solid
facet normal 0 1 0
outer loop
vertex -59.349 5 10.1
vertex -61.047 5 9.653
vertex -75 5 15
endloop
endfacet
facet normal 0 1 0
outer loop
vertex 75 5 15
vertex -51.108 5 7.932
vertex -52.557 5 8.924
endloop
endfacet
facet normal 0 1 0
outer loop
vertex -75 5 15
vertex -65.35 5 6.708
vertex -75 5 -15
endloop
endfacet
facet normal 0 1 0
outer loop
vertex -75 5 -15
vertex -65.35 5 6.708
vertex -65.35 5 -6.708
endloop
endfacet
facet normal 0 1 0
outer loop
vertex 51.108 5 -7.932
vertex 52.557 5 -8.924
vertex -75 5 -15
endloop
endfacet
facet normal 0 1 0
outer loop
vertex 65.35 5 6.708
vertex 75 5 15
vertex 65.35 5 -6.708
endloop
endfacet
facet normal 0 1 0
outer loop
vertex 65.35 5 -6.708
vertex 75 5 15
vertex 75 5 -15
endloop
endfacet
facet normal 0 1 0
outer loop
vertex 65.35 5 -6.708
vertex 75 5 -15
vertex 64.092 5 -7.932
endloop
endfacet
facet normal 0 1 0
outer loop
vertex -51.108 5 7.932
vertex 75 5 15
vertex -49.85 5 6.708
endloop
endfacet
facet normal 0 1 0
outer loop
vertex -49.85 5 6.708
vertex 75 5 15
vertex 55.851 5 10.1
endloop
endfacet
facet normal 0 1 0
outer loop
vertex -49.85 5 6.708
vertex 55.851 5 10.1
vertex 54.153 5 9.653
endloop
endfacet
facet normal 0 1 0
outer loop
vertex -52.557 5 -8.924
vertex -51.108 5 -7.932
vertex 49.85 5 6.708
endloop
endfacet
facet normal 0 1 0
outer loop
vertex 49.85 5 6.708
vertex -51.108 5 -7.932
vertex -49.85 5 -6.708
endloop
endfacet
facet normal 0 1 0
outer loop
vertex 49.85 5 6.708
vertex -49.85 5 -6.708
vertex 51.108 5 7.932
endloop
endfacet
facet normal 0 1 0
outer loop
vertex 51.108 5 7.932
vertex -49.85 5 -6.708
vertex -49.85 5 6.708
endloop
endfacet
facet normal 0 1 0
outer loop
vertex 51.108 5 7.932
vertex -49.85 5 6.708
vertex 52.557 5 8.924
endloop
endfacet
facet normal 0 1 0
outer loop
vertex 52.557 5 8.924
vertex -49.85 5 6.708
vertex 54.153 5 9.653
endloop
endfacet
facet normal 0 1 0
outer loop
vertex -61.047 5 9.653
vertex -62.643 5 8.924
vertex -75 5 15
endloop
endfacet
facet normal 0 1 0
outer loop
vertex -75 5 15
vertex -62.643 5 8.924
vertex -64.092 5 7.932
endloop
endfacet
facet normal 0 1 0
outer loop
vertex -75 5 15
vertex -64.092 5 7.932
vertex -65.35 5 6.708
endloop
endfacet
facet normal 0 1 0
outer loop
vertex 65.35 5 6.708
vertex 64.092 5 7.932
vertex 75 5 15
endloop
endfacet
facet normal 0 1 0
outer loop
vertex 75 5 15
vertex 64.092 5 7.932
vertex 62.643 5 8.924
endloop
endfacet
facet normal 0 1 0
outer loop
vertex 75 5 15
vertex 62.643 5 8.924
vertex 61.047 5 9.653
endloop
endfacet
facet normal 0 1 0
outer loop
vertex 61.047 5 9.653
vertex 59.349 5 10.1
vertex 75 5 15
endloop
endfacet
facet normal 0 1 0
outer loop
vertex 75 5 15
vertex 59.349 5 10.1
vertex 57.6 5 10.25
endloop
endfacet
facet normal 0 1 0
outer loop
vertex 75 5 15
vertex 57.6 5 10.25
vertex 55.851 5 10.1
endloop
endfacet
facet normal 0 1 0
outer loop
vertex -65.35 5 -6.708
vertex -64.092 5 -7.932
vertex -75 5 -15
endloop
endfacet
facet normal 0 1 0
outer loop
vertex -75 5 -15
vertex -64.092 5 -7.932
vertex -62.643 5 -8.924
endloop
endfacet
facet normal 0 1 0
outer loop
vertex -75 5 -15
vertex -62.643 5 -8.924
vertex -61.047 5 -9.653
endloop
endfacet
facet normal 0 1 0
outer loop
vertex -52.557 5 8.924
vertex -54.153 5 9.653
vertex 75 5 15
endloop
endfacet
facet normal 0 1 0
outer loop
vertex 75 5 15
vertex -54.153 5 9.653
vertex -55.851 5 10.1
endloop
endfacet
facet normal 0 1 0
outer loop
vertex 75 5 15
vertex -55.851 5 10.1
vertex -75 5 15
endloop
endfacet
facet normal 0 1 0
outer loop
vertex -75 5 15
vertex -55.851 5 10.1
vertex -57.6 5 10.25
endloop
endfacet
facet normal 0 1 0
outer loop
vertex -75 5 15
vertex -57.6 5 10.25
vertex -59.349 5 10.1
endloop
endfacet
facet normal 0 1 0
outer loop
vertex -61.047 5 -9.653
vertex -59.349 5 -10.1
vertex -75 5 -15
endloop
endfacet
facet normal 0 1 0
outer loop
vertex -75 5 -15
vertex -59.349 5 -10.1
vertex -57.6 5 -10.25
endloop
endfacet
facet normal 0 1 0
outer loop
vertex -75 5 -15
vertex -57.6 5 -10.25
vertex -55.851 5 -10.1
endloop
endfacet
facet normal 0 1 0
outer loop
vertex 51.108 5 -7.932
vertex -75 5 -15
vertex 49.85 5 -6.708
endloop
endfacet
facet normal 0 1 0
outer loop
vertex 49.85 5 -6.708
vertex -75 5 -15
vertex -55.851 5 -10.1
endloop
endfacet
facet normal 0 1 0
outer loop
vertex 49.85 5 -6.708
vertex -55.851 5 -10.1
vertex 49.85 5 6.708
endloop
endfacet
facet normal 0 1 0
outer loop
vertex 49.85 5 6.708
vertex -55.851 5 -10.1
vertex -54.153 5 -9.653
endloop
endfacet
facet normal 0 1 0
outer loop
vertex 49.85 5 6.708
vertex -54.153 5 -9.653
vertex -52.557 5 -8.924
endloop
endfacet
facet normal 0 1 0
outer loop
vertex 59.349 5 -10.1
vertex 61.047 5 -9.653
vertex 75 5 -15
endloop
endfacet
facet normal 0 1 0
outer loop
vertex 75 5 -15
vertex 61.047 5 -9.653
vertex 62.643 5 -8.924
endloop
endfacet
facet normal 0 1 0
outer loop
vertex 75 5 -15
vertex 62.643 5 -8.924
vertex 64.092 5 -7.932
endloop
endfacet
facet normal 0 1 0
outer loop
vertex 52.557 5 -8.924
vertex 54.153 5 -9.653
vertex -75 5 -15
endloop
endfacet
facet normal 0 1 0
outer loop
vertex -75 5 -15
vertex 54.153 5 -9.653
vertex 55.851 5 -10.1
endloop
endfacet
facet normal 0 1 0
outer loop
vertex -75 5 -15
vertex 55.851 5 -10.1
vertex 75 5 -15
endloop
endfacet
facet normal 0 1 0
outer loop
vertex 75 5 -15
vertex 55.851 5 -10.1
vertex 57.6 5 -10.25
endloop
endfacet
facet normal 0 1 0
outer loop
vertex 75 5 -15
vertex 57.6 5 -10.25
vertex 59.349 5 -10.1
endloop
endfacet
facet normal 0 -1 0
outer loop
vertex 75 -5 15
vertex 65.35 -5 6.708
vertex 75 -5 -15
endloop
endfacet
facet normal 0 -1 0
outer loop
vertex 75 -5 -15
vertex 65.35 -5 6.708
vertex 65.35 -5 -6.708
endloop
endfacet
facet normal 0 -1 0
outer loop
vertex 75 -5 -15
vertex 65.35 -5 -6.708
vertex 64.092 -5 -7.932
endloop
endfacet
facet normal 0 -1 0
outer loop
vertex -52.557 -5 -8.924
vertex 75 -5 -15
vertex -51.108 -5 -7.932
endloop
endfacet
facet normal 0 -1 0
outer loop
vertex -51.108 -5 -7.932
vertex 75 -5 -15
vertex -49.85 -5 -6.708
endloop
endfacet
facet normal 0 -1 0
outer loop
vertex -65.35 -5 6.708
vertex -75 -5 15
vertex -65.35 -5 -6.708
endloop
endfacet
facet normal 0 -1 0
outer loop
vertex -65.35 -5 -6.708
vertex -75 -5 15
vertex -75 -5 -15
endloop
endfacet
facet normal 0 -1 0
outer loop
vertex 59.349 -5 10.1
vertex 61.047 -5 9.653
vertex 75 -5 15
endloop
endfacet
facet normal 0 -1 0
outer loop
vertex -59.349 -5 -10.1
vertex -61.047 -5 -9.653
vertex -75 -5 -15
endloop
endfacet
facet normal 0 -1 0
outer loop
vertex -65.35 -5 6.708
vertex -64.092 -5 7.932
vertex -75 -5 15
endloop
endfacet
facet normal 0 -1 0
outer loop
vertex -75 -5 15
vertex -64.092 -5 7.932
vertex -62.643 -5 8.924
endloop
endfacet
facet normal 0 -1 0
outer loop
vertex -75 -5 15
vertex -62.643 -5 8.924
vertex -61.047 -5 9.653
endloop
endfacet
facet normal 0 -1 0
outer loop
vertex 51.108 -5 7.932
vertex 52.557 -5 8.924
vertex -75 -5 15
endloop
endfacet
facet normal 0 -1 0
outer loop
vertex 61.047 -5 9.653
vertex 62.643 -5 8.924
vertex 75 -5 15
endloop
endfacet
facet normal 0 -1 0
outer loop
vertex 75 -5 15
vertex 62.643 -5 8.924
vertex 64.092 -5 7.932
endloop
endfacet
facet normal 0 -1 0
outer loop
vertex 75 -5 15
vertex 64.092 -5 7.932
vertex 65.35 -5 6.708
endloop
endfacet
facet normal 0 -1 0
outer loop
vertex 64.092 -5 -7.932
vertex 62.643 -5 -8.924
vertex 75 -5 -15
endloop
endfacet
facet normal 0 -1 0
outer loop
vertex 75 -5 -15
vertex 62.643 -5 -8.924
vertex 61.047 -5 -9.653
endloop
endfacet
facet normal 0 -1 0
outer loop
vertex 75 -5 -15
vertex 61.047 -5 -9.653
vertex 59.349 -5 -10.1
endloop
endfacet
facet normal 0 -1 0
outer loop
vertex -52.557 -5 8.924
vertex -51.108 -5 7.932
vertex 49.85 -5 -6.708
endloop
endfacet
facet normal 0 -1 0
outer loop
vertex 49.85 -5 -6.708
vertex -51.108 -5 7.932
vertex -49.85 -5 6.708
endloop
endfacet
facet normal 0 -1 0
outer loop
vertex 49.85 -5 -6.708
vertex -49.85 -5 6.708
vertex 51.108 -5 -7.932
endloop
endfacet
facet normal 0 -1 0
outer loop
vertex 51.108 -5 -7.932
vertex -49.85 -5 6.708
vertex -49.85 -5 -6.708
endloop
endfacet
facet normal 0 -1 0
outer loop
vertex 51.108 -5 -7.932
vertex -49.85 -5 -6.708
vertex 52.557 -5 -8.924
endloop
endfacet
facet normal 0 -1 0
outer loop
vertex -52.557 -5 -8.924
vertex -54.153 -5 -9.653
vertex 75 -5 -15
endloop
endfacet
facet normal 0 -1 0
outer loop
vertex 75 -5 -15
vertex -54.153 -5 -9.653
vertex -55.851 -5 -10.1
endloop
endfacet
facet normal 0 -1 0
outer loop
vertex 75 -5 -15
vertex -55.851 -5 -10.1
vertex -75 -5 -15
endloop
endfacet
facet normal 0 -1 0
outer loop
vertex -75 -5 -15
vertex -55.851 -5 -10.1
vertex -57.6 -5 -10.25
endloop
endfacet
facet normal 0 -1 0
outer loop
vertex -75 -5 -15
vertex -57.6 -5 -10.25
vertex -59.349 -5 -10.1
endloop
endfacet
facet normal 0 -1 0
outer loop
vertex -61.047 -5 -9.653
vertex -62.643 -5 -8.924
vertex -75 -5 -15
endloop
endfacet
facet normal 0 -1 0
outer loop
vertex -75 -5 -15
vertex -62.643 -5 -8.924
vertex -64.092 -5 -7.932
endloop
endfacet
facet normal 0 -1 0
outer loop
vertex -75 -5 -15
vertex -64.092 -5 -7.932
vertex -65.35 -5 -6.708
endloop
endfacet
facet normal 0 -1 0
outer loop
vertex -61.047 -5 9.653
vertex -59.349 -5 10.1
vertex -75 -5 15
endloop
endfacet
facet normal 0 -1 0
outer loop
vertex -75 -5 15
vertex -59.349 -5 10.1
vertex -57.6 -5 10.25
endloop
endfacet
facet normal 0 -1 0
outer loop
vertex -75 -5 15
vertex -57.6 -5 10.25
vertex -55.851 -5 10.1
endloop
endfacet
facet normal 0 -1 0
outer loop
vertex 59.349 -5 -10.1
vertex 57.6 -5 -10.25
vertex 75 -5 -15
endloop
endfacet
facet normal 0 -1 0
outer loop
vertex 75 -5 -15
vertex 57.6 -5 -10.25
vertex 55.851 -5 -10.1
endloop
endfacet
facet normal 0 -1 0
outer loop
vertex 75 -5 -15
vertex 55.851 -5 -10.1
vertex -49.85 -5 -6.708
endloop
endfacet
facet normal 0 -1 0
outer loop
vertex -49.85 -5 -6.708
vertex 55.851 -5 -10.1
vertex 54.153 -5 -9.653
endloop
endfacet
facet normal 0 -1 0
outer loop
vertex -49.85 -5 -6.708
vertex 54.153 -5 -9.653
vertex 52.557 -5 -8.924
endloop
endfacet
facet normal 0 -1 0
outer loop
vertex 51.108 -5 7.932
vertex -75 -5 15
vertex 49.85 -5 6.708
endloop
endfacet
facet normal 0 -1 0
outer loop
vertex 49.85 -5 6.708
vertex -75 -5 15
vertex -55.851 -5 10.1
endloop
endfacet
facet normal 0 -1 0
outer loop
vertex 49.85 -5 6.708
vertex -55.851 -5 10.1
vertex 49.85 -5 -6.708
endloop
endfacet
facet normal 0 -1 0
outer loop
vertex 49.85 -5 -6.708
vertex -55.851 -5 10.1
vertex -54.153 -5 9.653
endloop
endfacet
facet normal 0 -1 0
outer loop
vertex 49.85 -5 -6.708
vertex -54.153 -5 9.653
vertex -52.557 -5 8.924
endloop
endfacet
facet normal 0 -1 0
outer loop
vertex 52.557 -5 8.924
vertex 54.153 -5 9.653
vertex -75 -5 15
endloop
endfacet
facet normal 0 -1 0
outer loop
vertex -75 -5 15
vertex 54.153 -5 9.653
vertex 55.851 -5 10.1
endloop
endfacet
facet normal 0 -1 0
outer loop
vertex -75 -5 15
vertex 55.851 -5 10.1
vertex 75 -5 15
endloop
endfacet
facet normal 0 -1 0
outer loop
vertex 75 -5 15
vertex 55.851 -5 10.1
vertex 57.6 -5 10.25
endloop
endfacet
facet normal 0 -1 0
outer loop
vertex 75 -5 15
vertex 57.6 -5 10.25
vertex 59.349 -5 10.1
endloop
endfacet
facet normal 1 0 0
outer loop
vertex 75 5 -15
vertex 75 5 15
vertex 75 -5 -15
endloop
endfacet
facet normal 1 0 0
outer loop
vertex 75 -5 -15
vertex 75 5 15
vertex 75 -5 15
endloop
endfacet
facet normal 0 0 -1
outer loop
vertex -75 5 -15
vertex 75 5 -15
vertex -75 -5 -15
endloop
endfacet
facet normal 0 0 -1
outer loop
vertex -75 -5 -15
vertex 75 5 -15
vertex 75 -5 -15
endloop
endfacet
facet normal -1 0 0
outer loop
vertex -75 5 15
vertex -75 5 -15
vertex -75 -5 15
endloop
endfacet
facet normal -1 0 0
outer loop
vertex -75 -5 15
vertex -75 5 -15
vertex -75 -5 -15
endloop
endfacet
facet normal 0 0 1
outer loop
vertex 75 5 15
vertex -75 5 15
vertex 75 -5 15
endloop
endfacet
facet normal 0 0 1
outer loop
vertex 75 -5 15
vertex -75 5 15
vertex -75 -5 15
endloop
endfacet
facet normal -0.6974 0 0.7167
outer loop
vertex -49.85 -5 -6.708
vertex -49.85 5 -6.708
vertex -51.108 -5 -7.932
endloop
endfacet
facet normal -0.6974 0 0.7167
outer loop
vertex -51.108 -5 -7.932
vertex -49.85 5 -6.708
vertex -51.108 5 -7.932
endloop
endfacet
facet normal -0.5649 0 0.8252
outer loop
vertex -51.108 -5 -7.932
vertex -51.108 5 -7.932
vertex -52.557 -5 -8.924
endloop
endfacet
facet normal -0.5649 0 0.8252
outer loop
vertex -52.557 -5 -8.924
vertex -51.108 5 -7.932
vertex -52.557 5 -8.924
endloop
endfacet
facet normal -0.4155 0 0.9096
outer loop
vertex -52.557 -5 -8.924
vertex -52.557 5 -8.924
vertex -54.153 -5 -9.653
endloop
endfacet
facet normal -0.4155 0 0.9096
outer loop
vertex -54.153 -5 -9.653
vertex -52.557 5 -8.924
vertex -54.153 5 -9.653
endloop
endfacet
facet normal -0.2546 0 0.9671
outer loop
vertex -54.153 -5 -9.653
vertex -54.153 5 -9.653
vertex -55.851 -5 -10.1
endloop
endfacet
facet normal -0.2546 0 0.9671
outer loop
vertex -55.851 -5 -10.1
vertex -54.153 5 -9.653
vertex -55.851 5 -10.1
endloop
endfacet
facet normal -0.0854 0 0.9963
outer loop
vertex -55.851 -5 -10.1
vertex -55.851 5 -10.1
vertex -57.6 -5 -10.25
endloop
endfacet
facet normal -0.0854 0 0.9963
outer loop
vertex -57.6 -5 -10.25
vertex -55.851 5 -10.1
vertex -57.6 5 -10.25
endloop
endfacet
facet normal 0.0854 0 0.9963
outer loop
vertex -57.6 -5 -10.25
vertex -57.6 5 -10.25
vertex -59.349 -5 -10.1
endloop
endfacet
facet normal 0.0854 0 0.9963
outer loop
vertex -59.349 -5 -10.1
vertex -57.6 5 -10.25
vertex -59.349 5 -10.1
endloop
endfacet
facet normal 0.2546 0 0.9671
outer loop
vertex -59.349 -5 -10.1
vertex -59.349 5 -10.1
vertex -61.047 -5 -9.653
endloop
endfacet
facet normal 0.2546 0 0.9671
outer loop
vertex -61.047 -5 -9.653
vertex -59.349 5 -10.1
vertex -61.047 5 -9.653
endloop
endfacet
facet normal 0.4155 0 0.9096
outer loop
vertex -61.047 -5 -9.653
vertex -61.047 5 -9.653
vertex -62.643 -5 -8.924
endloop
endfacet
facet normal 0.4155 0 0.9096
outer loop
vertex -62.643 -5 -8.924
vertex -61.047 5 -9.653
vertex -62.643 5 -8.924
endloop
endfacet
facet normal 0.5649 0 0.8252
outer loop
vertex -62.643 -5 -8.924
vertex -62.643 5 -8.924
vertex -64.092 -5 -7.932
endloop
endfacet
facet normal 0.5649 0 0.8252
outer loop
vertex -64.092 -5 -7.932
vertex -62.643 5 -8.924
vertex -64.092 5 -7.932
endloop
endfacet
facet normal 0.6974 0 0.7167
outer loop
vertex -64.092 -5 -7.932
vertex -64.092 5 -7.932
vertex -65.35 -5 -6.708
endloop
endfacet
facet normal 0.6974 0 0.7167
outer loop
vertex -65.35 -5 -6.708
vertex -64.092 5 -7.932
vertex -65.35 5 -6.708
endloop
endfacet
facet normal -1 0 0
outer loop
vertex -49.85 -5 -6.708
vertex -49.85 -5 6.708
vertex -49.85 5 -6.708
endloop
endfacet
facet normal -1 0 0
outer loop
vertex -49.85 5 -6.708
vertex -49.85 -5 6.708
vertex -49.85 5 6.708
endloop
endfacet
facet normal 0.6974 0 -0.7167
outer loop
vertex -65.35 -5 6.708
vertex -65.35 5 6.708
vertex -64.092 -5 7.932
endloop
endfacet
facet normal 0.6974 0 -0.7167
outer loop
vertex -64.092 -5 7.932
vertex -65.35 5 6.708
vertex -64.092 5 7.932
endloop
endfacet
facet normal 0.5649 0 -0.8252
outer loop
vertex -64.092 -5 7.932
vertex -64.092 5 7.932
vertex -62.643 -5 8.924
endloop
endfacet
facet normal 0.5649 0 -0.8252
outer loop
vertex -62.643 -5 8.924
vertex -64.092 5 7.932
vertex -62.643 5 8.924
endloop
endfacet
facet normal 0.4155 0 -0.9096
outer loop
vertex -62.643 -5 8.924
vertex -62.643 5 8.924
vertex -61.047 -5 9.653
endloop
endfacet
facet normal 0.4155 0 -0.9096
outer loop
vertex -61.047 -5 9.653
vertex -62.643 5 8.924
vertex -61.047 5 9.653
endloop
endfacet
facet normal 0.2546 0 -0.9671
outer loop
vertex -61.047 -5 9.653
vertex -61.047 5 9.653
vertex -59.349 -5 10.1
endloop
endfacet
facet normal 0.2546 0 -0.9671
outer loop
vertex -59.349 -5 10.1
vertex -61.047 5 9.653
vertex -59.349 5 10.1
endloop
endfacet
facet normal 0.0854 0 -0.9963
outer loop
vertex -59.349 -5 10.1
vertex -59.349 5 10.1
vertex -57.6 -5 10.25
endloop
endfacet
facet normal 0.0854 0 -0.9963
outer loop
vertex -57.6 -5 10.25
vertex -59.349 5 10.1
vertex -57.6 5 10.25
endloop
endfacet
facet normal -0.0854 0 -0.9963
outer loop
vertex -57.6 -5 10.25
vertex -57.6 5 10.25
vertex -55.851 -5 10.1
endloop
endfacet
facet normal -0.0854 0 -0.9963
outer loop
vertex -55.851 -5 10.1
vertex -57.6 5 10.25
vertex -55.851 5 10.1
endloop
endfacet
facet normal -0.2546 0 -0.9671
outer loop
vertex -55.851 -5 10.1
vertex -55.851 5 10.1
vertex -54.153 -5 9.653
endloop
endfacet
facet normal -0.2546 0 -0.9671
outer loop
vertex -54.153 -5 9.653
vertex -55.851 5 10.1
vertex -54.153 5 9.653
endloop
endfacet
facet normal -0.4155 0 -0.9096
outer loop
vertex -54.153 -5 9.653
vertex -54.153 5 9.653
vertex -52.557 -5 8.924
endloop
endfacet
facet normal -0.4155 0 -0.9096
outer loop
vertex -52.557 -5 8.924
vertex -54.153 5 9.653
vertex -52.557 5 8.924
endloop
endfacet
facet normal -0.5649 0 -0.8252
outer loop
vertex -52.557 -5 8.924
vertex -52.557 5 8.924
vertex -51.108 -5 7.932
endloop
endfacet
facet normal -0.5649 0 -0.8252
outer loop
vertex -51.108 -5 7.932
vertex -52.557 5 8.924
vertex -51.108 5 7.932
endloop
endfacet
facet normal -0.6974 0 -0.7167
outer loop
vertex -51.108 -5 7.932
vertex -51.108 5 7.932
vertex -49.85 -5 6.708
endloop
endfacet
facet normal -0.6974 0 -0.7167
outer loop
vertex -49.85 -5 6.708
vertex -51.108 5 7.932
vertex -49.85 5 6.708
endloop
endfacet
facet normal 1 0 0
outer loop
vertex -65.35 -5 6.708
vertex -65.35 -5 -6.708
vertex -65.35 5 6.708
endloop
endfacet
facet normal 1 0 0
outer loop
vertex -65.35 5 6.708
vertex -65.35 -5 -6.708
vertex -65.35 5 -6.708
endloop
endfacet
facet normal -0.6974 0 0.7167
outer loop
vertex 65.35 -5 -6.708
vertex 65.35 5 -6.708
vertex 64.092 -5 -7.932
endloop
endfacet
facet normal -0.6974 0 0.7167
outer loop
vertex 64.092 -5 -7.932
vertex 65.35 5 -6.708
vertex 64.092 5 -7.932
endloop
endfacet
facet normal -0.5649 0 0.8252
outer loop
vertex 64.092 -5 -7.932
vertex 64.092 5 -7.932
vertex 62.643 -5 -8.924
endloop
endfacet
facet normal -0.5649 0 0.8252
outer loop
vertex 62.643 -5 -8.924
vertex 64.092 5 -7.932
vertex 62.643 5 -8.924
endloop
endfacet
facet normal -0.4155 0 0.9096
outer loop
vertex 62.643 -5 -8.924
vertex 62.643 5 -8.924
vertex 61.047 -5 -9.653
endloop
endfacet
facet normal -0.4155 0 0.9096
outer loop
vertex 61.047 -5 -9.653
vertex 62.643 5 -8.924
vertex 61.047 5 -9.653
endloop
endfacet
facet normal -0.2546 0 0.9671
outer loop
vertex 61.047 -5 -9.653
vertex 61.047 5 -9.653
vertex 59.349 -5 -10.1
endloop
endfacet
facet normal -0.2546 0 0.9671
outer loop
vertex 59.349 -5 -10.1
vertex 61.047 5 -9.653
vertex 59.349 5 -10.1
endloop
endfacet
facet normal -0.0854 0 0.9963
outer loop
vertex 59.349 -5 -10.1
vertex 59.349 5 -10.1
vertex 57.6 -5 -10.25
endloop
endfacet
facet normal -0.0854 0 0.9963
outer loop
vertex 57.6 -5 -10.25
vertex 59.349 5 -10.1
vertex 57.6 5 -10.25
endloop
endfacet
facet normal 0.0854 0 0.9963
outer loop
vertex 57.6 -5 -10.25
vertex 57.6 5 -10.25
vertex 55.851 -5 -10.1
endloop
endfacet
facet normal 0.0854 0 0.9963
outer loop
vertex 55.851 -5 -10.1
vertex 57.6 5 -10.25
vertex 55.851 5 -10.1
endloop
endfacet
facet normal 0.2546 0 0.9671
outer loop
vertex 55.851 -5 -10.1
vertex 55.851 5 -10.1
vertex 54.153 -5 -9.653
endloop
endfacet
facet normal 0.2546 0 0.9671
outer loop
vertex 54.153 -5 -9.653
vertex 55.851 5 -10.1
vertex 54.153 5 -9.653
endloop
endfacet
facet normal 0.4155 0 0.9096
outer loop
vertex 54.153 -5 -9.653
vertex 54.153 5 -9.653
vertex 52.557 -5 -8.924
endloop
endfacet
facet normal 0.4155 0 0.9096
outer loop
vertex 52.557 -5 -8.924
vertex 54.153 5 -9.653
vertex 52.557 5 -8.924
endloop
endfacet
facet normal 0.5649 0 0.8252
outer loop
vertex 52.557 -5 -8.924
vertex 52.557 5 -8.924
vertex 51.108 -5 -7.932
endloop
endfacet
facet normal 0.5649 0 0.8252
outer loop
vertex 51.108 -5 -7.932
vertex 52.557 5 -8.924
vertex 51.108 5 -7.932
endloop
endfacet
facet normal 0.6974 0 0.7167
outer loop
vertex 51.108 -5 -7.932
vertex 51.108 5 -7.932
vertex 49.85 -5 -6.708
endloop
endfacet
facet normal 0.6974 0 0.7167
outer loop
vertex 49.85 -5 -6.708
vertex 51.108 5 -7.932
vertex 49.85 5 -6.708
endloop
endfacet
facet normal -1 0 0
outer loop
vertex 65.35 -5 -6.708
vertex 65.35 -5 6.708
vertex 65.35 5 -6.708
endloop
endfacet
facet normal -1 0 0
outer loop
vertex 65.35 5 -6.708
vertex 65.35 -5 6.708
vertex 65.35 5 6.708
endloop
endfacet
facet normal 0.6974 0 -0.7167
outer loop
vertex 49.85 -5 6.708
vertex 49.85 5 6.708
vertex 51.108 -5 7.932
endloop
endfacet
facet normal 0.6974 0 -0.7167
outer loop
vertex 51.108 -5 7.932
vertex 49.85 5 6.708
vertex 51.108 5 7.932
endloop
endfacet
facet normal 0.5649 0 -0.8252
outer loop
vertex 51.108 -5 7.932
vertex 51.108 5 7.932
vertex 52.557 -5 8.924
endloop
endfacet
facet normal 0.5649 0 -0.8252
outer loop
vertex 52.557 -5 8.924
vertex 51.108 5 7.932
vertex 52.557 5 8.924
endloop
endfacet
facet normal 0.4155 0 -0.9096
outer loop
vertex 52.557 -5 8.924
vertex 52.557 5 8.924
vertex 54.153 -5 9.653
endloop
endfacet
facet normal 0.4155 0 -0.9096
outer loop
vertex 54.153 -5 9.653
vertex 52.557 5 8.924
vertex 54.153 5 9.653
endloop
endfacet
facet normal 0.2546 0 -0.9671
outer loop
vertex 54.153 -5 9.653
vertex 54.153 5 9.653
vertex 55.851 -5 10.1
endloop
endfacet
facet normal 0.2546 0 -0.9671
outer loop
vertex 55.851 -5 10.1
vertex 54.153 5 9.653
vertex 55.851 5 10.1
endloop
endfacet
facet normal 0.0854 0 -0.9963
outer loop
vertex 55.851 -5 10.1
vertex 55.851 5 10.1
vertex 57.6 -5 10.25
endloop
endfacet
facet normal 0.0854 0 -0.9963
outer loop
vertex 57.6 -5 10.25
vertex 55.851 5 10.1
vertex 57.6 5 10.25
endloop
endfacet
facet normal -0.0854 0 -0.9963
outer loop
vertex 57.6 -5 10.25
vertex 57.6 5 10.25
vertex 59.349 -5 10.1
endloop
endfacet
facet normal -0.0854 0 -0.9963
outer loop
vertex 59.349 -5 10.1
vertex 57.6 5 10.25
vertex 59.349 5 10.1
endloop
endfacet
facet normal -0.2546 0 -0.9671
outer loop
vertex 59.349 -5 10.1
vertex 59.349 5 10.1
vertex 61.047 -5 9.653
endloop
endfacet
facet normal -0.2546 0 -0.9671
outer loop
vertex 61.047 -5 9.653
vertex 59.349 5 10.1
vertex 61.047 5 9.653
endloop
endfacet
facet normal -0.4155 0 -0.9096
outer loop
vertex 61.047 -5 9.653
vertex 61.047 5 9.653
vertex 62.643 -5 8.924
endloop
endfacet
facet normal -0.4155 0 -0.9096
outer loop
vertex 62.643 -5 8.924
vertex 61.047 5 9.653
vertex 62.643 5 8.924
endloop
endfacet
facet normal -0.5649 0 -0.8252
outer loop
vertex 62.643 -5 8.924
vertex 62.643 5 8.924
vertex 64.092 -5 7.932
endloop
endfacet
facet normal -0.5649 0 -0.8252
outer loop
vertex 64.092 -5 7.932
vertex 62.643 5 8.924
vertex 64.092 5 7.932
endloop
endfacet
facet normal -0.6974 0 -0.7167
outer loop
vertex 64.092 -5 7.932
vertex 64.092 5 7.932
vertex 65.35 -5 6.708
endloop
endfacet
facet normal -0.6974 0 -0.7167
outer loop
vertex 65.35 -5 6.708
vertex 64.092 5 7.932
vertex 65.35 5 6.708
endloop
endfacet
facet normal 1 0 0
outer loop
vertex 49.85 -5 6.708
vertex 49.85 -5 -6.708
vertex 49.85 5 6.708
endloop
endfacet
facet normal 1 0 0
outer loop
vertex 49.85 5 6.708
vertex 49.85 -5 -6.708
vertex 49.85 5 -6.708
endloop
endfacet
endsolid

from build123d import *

# Parameters (mm, degrees)
SKETCH1_W           = 150
SKETCH1_H           = 30
BOSS_EXTRUDE1_DEPTH = 5
CUT_EXTRUDE1_DEPTH  = 78.136243103


with BuildPart() as part:
    # Sketch1 → Boss-Extrude1 (new, symmetric)
    with BuildSketch(Plane(origin=(0, 0, 0), x_dir=(1, 0, 0), z_dir=(0, 1, 0))):
        Rectangle(SKETCH1_W, SKETCH1_H)
    extrude(amount=BOSS_EXTRUDE1_DEPTH, both=True)

    # Sketch2 → Cut-Extrude1 (cut, through all)
    with BuildSketch(Plane(origin=(0, 5, 0), x_dir=(1, 0, 0), z_dir=(0, 1, 0))):
        with BuildLine():
            Line((-65.35, 6.708203932), (-65.35, -6.708203932))
            ThreePointArc((-65.35, -6.708203932), (-57.6, -10.25), (-49.85, -6.708203932))
            Line((-49.85, -6.708203932), (-49.85, 6.708203932))
            ThreePointArc((-49.85, 6.708203932), (-57.6, 10.25), (-65.35, 6.708203932))
        make_face()
    cut_extrude1 = extrude(amount=-CUT_EXTRUDE1_DEPTH, mode=Mode.SUBTRACT)

    # Mirror1: Cut-Extrude1 across plane
    add(cut_extrude1.mirror(Plane(origin=(0, 0, 0), x_dir=(0, 0, 1), z_dir=(1, 0, 0))), mode=Mode.SUBTRACT)


solid = part.part
